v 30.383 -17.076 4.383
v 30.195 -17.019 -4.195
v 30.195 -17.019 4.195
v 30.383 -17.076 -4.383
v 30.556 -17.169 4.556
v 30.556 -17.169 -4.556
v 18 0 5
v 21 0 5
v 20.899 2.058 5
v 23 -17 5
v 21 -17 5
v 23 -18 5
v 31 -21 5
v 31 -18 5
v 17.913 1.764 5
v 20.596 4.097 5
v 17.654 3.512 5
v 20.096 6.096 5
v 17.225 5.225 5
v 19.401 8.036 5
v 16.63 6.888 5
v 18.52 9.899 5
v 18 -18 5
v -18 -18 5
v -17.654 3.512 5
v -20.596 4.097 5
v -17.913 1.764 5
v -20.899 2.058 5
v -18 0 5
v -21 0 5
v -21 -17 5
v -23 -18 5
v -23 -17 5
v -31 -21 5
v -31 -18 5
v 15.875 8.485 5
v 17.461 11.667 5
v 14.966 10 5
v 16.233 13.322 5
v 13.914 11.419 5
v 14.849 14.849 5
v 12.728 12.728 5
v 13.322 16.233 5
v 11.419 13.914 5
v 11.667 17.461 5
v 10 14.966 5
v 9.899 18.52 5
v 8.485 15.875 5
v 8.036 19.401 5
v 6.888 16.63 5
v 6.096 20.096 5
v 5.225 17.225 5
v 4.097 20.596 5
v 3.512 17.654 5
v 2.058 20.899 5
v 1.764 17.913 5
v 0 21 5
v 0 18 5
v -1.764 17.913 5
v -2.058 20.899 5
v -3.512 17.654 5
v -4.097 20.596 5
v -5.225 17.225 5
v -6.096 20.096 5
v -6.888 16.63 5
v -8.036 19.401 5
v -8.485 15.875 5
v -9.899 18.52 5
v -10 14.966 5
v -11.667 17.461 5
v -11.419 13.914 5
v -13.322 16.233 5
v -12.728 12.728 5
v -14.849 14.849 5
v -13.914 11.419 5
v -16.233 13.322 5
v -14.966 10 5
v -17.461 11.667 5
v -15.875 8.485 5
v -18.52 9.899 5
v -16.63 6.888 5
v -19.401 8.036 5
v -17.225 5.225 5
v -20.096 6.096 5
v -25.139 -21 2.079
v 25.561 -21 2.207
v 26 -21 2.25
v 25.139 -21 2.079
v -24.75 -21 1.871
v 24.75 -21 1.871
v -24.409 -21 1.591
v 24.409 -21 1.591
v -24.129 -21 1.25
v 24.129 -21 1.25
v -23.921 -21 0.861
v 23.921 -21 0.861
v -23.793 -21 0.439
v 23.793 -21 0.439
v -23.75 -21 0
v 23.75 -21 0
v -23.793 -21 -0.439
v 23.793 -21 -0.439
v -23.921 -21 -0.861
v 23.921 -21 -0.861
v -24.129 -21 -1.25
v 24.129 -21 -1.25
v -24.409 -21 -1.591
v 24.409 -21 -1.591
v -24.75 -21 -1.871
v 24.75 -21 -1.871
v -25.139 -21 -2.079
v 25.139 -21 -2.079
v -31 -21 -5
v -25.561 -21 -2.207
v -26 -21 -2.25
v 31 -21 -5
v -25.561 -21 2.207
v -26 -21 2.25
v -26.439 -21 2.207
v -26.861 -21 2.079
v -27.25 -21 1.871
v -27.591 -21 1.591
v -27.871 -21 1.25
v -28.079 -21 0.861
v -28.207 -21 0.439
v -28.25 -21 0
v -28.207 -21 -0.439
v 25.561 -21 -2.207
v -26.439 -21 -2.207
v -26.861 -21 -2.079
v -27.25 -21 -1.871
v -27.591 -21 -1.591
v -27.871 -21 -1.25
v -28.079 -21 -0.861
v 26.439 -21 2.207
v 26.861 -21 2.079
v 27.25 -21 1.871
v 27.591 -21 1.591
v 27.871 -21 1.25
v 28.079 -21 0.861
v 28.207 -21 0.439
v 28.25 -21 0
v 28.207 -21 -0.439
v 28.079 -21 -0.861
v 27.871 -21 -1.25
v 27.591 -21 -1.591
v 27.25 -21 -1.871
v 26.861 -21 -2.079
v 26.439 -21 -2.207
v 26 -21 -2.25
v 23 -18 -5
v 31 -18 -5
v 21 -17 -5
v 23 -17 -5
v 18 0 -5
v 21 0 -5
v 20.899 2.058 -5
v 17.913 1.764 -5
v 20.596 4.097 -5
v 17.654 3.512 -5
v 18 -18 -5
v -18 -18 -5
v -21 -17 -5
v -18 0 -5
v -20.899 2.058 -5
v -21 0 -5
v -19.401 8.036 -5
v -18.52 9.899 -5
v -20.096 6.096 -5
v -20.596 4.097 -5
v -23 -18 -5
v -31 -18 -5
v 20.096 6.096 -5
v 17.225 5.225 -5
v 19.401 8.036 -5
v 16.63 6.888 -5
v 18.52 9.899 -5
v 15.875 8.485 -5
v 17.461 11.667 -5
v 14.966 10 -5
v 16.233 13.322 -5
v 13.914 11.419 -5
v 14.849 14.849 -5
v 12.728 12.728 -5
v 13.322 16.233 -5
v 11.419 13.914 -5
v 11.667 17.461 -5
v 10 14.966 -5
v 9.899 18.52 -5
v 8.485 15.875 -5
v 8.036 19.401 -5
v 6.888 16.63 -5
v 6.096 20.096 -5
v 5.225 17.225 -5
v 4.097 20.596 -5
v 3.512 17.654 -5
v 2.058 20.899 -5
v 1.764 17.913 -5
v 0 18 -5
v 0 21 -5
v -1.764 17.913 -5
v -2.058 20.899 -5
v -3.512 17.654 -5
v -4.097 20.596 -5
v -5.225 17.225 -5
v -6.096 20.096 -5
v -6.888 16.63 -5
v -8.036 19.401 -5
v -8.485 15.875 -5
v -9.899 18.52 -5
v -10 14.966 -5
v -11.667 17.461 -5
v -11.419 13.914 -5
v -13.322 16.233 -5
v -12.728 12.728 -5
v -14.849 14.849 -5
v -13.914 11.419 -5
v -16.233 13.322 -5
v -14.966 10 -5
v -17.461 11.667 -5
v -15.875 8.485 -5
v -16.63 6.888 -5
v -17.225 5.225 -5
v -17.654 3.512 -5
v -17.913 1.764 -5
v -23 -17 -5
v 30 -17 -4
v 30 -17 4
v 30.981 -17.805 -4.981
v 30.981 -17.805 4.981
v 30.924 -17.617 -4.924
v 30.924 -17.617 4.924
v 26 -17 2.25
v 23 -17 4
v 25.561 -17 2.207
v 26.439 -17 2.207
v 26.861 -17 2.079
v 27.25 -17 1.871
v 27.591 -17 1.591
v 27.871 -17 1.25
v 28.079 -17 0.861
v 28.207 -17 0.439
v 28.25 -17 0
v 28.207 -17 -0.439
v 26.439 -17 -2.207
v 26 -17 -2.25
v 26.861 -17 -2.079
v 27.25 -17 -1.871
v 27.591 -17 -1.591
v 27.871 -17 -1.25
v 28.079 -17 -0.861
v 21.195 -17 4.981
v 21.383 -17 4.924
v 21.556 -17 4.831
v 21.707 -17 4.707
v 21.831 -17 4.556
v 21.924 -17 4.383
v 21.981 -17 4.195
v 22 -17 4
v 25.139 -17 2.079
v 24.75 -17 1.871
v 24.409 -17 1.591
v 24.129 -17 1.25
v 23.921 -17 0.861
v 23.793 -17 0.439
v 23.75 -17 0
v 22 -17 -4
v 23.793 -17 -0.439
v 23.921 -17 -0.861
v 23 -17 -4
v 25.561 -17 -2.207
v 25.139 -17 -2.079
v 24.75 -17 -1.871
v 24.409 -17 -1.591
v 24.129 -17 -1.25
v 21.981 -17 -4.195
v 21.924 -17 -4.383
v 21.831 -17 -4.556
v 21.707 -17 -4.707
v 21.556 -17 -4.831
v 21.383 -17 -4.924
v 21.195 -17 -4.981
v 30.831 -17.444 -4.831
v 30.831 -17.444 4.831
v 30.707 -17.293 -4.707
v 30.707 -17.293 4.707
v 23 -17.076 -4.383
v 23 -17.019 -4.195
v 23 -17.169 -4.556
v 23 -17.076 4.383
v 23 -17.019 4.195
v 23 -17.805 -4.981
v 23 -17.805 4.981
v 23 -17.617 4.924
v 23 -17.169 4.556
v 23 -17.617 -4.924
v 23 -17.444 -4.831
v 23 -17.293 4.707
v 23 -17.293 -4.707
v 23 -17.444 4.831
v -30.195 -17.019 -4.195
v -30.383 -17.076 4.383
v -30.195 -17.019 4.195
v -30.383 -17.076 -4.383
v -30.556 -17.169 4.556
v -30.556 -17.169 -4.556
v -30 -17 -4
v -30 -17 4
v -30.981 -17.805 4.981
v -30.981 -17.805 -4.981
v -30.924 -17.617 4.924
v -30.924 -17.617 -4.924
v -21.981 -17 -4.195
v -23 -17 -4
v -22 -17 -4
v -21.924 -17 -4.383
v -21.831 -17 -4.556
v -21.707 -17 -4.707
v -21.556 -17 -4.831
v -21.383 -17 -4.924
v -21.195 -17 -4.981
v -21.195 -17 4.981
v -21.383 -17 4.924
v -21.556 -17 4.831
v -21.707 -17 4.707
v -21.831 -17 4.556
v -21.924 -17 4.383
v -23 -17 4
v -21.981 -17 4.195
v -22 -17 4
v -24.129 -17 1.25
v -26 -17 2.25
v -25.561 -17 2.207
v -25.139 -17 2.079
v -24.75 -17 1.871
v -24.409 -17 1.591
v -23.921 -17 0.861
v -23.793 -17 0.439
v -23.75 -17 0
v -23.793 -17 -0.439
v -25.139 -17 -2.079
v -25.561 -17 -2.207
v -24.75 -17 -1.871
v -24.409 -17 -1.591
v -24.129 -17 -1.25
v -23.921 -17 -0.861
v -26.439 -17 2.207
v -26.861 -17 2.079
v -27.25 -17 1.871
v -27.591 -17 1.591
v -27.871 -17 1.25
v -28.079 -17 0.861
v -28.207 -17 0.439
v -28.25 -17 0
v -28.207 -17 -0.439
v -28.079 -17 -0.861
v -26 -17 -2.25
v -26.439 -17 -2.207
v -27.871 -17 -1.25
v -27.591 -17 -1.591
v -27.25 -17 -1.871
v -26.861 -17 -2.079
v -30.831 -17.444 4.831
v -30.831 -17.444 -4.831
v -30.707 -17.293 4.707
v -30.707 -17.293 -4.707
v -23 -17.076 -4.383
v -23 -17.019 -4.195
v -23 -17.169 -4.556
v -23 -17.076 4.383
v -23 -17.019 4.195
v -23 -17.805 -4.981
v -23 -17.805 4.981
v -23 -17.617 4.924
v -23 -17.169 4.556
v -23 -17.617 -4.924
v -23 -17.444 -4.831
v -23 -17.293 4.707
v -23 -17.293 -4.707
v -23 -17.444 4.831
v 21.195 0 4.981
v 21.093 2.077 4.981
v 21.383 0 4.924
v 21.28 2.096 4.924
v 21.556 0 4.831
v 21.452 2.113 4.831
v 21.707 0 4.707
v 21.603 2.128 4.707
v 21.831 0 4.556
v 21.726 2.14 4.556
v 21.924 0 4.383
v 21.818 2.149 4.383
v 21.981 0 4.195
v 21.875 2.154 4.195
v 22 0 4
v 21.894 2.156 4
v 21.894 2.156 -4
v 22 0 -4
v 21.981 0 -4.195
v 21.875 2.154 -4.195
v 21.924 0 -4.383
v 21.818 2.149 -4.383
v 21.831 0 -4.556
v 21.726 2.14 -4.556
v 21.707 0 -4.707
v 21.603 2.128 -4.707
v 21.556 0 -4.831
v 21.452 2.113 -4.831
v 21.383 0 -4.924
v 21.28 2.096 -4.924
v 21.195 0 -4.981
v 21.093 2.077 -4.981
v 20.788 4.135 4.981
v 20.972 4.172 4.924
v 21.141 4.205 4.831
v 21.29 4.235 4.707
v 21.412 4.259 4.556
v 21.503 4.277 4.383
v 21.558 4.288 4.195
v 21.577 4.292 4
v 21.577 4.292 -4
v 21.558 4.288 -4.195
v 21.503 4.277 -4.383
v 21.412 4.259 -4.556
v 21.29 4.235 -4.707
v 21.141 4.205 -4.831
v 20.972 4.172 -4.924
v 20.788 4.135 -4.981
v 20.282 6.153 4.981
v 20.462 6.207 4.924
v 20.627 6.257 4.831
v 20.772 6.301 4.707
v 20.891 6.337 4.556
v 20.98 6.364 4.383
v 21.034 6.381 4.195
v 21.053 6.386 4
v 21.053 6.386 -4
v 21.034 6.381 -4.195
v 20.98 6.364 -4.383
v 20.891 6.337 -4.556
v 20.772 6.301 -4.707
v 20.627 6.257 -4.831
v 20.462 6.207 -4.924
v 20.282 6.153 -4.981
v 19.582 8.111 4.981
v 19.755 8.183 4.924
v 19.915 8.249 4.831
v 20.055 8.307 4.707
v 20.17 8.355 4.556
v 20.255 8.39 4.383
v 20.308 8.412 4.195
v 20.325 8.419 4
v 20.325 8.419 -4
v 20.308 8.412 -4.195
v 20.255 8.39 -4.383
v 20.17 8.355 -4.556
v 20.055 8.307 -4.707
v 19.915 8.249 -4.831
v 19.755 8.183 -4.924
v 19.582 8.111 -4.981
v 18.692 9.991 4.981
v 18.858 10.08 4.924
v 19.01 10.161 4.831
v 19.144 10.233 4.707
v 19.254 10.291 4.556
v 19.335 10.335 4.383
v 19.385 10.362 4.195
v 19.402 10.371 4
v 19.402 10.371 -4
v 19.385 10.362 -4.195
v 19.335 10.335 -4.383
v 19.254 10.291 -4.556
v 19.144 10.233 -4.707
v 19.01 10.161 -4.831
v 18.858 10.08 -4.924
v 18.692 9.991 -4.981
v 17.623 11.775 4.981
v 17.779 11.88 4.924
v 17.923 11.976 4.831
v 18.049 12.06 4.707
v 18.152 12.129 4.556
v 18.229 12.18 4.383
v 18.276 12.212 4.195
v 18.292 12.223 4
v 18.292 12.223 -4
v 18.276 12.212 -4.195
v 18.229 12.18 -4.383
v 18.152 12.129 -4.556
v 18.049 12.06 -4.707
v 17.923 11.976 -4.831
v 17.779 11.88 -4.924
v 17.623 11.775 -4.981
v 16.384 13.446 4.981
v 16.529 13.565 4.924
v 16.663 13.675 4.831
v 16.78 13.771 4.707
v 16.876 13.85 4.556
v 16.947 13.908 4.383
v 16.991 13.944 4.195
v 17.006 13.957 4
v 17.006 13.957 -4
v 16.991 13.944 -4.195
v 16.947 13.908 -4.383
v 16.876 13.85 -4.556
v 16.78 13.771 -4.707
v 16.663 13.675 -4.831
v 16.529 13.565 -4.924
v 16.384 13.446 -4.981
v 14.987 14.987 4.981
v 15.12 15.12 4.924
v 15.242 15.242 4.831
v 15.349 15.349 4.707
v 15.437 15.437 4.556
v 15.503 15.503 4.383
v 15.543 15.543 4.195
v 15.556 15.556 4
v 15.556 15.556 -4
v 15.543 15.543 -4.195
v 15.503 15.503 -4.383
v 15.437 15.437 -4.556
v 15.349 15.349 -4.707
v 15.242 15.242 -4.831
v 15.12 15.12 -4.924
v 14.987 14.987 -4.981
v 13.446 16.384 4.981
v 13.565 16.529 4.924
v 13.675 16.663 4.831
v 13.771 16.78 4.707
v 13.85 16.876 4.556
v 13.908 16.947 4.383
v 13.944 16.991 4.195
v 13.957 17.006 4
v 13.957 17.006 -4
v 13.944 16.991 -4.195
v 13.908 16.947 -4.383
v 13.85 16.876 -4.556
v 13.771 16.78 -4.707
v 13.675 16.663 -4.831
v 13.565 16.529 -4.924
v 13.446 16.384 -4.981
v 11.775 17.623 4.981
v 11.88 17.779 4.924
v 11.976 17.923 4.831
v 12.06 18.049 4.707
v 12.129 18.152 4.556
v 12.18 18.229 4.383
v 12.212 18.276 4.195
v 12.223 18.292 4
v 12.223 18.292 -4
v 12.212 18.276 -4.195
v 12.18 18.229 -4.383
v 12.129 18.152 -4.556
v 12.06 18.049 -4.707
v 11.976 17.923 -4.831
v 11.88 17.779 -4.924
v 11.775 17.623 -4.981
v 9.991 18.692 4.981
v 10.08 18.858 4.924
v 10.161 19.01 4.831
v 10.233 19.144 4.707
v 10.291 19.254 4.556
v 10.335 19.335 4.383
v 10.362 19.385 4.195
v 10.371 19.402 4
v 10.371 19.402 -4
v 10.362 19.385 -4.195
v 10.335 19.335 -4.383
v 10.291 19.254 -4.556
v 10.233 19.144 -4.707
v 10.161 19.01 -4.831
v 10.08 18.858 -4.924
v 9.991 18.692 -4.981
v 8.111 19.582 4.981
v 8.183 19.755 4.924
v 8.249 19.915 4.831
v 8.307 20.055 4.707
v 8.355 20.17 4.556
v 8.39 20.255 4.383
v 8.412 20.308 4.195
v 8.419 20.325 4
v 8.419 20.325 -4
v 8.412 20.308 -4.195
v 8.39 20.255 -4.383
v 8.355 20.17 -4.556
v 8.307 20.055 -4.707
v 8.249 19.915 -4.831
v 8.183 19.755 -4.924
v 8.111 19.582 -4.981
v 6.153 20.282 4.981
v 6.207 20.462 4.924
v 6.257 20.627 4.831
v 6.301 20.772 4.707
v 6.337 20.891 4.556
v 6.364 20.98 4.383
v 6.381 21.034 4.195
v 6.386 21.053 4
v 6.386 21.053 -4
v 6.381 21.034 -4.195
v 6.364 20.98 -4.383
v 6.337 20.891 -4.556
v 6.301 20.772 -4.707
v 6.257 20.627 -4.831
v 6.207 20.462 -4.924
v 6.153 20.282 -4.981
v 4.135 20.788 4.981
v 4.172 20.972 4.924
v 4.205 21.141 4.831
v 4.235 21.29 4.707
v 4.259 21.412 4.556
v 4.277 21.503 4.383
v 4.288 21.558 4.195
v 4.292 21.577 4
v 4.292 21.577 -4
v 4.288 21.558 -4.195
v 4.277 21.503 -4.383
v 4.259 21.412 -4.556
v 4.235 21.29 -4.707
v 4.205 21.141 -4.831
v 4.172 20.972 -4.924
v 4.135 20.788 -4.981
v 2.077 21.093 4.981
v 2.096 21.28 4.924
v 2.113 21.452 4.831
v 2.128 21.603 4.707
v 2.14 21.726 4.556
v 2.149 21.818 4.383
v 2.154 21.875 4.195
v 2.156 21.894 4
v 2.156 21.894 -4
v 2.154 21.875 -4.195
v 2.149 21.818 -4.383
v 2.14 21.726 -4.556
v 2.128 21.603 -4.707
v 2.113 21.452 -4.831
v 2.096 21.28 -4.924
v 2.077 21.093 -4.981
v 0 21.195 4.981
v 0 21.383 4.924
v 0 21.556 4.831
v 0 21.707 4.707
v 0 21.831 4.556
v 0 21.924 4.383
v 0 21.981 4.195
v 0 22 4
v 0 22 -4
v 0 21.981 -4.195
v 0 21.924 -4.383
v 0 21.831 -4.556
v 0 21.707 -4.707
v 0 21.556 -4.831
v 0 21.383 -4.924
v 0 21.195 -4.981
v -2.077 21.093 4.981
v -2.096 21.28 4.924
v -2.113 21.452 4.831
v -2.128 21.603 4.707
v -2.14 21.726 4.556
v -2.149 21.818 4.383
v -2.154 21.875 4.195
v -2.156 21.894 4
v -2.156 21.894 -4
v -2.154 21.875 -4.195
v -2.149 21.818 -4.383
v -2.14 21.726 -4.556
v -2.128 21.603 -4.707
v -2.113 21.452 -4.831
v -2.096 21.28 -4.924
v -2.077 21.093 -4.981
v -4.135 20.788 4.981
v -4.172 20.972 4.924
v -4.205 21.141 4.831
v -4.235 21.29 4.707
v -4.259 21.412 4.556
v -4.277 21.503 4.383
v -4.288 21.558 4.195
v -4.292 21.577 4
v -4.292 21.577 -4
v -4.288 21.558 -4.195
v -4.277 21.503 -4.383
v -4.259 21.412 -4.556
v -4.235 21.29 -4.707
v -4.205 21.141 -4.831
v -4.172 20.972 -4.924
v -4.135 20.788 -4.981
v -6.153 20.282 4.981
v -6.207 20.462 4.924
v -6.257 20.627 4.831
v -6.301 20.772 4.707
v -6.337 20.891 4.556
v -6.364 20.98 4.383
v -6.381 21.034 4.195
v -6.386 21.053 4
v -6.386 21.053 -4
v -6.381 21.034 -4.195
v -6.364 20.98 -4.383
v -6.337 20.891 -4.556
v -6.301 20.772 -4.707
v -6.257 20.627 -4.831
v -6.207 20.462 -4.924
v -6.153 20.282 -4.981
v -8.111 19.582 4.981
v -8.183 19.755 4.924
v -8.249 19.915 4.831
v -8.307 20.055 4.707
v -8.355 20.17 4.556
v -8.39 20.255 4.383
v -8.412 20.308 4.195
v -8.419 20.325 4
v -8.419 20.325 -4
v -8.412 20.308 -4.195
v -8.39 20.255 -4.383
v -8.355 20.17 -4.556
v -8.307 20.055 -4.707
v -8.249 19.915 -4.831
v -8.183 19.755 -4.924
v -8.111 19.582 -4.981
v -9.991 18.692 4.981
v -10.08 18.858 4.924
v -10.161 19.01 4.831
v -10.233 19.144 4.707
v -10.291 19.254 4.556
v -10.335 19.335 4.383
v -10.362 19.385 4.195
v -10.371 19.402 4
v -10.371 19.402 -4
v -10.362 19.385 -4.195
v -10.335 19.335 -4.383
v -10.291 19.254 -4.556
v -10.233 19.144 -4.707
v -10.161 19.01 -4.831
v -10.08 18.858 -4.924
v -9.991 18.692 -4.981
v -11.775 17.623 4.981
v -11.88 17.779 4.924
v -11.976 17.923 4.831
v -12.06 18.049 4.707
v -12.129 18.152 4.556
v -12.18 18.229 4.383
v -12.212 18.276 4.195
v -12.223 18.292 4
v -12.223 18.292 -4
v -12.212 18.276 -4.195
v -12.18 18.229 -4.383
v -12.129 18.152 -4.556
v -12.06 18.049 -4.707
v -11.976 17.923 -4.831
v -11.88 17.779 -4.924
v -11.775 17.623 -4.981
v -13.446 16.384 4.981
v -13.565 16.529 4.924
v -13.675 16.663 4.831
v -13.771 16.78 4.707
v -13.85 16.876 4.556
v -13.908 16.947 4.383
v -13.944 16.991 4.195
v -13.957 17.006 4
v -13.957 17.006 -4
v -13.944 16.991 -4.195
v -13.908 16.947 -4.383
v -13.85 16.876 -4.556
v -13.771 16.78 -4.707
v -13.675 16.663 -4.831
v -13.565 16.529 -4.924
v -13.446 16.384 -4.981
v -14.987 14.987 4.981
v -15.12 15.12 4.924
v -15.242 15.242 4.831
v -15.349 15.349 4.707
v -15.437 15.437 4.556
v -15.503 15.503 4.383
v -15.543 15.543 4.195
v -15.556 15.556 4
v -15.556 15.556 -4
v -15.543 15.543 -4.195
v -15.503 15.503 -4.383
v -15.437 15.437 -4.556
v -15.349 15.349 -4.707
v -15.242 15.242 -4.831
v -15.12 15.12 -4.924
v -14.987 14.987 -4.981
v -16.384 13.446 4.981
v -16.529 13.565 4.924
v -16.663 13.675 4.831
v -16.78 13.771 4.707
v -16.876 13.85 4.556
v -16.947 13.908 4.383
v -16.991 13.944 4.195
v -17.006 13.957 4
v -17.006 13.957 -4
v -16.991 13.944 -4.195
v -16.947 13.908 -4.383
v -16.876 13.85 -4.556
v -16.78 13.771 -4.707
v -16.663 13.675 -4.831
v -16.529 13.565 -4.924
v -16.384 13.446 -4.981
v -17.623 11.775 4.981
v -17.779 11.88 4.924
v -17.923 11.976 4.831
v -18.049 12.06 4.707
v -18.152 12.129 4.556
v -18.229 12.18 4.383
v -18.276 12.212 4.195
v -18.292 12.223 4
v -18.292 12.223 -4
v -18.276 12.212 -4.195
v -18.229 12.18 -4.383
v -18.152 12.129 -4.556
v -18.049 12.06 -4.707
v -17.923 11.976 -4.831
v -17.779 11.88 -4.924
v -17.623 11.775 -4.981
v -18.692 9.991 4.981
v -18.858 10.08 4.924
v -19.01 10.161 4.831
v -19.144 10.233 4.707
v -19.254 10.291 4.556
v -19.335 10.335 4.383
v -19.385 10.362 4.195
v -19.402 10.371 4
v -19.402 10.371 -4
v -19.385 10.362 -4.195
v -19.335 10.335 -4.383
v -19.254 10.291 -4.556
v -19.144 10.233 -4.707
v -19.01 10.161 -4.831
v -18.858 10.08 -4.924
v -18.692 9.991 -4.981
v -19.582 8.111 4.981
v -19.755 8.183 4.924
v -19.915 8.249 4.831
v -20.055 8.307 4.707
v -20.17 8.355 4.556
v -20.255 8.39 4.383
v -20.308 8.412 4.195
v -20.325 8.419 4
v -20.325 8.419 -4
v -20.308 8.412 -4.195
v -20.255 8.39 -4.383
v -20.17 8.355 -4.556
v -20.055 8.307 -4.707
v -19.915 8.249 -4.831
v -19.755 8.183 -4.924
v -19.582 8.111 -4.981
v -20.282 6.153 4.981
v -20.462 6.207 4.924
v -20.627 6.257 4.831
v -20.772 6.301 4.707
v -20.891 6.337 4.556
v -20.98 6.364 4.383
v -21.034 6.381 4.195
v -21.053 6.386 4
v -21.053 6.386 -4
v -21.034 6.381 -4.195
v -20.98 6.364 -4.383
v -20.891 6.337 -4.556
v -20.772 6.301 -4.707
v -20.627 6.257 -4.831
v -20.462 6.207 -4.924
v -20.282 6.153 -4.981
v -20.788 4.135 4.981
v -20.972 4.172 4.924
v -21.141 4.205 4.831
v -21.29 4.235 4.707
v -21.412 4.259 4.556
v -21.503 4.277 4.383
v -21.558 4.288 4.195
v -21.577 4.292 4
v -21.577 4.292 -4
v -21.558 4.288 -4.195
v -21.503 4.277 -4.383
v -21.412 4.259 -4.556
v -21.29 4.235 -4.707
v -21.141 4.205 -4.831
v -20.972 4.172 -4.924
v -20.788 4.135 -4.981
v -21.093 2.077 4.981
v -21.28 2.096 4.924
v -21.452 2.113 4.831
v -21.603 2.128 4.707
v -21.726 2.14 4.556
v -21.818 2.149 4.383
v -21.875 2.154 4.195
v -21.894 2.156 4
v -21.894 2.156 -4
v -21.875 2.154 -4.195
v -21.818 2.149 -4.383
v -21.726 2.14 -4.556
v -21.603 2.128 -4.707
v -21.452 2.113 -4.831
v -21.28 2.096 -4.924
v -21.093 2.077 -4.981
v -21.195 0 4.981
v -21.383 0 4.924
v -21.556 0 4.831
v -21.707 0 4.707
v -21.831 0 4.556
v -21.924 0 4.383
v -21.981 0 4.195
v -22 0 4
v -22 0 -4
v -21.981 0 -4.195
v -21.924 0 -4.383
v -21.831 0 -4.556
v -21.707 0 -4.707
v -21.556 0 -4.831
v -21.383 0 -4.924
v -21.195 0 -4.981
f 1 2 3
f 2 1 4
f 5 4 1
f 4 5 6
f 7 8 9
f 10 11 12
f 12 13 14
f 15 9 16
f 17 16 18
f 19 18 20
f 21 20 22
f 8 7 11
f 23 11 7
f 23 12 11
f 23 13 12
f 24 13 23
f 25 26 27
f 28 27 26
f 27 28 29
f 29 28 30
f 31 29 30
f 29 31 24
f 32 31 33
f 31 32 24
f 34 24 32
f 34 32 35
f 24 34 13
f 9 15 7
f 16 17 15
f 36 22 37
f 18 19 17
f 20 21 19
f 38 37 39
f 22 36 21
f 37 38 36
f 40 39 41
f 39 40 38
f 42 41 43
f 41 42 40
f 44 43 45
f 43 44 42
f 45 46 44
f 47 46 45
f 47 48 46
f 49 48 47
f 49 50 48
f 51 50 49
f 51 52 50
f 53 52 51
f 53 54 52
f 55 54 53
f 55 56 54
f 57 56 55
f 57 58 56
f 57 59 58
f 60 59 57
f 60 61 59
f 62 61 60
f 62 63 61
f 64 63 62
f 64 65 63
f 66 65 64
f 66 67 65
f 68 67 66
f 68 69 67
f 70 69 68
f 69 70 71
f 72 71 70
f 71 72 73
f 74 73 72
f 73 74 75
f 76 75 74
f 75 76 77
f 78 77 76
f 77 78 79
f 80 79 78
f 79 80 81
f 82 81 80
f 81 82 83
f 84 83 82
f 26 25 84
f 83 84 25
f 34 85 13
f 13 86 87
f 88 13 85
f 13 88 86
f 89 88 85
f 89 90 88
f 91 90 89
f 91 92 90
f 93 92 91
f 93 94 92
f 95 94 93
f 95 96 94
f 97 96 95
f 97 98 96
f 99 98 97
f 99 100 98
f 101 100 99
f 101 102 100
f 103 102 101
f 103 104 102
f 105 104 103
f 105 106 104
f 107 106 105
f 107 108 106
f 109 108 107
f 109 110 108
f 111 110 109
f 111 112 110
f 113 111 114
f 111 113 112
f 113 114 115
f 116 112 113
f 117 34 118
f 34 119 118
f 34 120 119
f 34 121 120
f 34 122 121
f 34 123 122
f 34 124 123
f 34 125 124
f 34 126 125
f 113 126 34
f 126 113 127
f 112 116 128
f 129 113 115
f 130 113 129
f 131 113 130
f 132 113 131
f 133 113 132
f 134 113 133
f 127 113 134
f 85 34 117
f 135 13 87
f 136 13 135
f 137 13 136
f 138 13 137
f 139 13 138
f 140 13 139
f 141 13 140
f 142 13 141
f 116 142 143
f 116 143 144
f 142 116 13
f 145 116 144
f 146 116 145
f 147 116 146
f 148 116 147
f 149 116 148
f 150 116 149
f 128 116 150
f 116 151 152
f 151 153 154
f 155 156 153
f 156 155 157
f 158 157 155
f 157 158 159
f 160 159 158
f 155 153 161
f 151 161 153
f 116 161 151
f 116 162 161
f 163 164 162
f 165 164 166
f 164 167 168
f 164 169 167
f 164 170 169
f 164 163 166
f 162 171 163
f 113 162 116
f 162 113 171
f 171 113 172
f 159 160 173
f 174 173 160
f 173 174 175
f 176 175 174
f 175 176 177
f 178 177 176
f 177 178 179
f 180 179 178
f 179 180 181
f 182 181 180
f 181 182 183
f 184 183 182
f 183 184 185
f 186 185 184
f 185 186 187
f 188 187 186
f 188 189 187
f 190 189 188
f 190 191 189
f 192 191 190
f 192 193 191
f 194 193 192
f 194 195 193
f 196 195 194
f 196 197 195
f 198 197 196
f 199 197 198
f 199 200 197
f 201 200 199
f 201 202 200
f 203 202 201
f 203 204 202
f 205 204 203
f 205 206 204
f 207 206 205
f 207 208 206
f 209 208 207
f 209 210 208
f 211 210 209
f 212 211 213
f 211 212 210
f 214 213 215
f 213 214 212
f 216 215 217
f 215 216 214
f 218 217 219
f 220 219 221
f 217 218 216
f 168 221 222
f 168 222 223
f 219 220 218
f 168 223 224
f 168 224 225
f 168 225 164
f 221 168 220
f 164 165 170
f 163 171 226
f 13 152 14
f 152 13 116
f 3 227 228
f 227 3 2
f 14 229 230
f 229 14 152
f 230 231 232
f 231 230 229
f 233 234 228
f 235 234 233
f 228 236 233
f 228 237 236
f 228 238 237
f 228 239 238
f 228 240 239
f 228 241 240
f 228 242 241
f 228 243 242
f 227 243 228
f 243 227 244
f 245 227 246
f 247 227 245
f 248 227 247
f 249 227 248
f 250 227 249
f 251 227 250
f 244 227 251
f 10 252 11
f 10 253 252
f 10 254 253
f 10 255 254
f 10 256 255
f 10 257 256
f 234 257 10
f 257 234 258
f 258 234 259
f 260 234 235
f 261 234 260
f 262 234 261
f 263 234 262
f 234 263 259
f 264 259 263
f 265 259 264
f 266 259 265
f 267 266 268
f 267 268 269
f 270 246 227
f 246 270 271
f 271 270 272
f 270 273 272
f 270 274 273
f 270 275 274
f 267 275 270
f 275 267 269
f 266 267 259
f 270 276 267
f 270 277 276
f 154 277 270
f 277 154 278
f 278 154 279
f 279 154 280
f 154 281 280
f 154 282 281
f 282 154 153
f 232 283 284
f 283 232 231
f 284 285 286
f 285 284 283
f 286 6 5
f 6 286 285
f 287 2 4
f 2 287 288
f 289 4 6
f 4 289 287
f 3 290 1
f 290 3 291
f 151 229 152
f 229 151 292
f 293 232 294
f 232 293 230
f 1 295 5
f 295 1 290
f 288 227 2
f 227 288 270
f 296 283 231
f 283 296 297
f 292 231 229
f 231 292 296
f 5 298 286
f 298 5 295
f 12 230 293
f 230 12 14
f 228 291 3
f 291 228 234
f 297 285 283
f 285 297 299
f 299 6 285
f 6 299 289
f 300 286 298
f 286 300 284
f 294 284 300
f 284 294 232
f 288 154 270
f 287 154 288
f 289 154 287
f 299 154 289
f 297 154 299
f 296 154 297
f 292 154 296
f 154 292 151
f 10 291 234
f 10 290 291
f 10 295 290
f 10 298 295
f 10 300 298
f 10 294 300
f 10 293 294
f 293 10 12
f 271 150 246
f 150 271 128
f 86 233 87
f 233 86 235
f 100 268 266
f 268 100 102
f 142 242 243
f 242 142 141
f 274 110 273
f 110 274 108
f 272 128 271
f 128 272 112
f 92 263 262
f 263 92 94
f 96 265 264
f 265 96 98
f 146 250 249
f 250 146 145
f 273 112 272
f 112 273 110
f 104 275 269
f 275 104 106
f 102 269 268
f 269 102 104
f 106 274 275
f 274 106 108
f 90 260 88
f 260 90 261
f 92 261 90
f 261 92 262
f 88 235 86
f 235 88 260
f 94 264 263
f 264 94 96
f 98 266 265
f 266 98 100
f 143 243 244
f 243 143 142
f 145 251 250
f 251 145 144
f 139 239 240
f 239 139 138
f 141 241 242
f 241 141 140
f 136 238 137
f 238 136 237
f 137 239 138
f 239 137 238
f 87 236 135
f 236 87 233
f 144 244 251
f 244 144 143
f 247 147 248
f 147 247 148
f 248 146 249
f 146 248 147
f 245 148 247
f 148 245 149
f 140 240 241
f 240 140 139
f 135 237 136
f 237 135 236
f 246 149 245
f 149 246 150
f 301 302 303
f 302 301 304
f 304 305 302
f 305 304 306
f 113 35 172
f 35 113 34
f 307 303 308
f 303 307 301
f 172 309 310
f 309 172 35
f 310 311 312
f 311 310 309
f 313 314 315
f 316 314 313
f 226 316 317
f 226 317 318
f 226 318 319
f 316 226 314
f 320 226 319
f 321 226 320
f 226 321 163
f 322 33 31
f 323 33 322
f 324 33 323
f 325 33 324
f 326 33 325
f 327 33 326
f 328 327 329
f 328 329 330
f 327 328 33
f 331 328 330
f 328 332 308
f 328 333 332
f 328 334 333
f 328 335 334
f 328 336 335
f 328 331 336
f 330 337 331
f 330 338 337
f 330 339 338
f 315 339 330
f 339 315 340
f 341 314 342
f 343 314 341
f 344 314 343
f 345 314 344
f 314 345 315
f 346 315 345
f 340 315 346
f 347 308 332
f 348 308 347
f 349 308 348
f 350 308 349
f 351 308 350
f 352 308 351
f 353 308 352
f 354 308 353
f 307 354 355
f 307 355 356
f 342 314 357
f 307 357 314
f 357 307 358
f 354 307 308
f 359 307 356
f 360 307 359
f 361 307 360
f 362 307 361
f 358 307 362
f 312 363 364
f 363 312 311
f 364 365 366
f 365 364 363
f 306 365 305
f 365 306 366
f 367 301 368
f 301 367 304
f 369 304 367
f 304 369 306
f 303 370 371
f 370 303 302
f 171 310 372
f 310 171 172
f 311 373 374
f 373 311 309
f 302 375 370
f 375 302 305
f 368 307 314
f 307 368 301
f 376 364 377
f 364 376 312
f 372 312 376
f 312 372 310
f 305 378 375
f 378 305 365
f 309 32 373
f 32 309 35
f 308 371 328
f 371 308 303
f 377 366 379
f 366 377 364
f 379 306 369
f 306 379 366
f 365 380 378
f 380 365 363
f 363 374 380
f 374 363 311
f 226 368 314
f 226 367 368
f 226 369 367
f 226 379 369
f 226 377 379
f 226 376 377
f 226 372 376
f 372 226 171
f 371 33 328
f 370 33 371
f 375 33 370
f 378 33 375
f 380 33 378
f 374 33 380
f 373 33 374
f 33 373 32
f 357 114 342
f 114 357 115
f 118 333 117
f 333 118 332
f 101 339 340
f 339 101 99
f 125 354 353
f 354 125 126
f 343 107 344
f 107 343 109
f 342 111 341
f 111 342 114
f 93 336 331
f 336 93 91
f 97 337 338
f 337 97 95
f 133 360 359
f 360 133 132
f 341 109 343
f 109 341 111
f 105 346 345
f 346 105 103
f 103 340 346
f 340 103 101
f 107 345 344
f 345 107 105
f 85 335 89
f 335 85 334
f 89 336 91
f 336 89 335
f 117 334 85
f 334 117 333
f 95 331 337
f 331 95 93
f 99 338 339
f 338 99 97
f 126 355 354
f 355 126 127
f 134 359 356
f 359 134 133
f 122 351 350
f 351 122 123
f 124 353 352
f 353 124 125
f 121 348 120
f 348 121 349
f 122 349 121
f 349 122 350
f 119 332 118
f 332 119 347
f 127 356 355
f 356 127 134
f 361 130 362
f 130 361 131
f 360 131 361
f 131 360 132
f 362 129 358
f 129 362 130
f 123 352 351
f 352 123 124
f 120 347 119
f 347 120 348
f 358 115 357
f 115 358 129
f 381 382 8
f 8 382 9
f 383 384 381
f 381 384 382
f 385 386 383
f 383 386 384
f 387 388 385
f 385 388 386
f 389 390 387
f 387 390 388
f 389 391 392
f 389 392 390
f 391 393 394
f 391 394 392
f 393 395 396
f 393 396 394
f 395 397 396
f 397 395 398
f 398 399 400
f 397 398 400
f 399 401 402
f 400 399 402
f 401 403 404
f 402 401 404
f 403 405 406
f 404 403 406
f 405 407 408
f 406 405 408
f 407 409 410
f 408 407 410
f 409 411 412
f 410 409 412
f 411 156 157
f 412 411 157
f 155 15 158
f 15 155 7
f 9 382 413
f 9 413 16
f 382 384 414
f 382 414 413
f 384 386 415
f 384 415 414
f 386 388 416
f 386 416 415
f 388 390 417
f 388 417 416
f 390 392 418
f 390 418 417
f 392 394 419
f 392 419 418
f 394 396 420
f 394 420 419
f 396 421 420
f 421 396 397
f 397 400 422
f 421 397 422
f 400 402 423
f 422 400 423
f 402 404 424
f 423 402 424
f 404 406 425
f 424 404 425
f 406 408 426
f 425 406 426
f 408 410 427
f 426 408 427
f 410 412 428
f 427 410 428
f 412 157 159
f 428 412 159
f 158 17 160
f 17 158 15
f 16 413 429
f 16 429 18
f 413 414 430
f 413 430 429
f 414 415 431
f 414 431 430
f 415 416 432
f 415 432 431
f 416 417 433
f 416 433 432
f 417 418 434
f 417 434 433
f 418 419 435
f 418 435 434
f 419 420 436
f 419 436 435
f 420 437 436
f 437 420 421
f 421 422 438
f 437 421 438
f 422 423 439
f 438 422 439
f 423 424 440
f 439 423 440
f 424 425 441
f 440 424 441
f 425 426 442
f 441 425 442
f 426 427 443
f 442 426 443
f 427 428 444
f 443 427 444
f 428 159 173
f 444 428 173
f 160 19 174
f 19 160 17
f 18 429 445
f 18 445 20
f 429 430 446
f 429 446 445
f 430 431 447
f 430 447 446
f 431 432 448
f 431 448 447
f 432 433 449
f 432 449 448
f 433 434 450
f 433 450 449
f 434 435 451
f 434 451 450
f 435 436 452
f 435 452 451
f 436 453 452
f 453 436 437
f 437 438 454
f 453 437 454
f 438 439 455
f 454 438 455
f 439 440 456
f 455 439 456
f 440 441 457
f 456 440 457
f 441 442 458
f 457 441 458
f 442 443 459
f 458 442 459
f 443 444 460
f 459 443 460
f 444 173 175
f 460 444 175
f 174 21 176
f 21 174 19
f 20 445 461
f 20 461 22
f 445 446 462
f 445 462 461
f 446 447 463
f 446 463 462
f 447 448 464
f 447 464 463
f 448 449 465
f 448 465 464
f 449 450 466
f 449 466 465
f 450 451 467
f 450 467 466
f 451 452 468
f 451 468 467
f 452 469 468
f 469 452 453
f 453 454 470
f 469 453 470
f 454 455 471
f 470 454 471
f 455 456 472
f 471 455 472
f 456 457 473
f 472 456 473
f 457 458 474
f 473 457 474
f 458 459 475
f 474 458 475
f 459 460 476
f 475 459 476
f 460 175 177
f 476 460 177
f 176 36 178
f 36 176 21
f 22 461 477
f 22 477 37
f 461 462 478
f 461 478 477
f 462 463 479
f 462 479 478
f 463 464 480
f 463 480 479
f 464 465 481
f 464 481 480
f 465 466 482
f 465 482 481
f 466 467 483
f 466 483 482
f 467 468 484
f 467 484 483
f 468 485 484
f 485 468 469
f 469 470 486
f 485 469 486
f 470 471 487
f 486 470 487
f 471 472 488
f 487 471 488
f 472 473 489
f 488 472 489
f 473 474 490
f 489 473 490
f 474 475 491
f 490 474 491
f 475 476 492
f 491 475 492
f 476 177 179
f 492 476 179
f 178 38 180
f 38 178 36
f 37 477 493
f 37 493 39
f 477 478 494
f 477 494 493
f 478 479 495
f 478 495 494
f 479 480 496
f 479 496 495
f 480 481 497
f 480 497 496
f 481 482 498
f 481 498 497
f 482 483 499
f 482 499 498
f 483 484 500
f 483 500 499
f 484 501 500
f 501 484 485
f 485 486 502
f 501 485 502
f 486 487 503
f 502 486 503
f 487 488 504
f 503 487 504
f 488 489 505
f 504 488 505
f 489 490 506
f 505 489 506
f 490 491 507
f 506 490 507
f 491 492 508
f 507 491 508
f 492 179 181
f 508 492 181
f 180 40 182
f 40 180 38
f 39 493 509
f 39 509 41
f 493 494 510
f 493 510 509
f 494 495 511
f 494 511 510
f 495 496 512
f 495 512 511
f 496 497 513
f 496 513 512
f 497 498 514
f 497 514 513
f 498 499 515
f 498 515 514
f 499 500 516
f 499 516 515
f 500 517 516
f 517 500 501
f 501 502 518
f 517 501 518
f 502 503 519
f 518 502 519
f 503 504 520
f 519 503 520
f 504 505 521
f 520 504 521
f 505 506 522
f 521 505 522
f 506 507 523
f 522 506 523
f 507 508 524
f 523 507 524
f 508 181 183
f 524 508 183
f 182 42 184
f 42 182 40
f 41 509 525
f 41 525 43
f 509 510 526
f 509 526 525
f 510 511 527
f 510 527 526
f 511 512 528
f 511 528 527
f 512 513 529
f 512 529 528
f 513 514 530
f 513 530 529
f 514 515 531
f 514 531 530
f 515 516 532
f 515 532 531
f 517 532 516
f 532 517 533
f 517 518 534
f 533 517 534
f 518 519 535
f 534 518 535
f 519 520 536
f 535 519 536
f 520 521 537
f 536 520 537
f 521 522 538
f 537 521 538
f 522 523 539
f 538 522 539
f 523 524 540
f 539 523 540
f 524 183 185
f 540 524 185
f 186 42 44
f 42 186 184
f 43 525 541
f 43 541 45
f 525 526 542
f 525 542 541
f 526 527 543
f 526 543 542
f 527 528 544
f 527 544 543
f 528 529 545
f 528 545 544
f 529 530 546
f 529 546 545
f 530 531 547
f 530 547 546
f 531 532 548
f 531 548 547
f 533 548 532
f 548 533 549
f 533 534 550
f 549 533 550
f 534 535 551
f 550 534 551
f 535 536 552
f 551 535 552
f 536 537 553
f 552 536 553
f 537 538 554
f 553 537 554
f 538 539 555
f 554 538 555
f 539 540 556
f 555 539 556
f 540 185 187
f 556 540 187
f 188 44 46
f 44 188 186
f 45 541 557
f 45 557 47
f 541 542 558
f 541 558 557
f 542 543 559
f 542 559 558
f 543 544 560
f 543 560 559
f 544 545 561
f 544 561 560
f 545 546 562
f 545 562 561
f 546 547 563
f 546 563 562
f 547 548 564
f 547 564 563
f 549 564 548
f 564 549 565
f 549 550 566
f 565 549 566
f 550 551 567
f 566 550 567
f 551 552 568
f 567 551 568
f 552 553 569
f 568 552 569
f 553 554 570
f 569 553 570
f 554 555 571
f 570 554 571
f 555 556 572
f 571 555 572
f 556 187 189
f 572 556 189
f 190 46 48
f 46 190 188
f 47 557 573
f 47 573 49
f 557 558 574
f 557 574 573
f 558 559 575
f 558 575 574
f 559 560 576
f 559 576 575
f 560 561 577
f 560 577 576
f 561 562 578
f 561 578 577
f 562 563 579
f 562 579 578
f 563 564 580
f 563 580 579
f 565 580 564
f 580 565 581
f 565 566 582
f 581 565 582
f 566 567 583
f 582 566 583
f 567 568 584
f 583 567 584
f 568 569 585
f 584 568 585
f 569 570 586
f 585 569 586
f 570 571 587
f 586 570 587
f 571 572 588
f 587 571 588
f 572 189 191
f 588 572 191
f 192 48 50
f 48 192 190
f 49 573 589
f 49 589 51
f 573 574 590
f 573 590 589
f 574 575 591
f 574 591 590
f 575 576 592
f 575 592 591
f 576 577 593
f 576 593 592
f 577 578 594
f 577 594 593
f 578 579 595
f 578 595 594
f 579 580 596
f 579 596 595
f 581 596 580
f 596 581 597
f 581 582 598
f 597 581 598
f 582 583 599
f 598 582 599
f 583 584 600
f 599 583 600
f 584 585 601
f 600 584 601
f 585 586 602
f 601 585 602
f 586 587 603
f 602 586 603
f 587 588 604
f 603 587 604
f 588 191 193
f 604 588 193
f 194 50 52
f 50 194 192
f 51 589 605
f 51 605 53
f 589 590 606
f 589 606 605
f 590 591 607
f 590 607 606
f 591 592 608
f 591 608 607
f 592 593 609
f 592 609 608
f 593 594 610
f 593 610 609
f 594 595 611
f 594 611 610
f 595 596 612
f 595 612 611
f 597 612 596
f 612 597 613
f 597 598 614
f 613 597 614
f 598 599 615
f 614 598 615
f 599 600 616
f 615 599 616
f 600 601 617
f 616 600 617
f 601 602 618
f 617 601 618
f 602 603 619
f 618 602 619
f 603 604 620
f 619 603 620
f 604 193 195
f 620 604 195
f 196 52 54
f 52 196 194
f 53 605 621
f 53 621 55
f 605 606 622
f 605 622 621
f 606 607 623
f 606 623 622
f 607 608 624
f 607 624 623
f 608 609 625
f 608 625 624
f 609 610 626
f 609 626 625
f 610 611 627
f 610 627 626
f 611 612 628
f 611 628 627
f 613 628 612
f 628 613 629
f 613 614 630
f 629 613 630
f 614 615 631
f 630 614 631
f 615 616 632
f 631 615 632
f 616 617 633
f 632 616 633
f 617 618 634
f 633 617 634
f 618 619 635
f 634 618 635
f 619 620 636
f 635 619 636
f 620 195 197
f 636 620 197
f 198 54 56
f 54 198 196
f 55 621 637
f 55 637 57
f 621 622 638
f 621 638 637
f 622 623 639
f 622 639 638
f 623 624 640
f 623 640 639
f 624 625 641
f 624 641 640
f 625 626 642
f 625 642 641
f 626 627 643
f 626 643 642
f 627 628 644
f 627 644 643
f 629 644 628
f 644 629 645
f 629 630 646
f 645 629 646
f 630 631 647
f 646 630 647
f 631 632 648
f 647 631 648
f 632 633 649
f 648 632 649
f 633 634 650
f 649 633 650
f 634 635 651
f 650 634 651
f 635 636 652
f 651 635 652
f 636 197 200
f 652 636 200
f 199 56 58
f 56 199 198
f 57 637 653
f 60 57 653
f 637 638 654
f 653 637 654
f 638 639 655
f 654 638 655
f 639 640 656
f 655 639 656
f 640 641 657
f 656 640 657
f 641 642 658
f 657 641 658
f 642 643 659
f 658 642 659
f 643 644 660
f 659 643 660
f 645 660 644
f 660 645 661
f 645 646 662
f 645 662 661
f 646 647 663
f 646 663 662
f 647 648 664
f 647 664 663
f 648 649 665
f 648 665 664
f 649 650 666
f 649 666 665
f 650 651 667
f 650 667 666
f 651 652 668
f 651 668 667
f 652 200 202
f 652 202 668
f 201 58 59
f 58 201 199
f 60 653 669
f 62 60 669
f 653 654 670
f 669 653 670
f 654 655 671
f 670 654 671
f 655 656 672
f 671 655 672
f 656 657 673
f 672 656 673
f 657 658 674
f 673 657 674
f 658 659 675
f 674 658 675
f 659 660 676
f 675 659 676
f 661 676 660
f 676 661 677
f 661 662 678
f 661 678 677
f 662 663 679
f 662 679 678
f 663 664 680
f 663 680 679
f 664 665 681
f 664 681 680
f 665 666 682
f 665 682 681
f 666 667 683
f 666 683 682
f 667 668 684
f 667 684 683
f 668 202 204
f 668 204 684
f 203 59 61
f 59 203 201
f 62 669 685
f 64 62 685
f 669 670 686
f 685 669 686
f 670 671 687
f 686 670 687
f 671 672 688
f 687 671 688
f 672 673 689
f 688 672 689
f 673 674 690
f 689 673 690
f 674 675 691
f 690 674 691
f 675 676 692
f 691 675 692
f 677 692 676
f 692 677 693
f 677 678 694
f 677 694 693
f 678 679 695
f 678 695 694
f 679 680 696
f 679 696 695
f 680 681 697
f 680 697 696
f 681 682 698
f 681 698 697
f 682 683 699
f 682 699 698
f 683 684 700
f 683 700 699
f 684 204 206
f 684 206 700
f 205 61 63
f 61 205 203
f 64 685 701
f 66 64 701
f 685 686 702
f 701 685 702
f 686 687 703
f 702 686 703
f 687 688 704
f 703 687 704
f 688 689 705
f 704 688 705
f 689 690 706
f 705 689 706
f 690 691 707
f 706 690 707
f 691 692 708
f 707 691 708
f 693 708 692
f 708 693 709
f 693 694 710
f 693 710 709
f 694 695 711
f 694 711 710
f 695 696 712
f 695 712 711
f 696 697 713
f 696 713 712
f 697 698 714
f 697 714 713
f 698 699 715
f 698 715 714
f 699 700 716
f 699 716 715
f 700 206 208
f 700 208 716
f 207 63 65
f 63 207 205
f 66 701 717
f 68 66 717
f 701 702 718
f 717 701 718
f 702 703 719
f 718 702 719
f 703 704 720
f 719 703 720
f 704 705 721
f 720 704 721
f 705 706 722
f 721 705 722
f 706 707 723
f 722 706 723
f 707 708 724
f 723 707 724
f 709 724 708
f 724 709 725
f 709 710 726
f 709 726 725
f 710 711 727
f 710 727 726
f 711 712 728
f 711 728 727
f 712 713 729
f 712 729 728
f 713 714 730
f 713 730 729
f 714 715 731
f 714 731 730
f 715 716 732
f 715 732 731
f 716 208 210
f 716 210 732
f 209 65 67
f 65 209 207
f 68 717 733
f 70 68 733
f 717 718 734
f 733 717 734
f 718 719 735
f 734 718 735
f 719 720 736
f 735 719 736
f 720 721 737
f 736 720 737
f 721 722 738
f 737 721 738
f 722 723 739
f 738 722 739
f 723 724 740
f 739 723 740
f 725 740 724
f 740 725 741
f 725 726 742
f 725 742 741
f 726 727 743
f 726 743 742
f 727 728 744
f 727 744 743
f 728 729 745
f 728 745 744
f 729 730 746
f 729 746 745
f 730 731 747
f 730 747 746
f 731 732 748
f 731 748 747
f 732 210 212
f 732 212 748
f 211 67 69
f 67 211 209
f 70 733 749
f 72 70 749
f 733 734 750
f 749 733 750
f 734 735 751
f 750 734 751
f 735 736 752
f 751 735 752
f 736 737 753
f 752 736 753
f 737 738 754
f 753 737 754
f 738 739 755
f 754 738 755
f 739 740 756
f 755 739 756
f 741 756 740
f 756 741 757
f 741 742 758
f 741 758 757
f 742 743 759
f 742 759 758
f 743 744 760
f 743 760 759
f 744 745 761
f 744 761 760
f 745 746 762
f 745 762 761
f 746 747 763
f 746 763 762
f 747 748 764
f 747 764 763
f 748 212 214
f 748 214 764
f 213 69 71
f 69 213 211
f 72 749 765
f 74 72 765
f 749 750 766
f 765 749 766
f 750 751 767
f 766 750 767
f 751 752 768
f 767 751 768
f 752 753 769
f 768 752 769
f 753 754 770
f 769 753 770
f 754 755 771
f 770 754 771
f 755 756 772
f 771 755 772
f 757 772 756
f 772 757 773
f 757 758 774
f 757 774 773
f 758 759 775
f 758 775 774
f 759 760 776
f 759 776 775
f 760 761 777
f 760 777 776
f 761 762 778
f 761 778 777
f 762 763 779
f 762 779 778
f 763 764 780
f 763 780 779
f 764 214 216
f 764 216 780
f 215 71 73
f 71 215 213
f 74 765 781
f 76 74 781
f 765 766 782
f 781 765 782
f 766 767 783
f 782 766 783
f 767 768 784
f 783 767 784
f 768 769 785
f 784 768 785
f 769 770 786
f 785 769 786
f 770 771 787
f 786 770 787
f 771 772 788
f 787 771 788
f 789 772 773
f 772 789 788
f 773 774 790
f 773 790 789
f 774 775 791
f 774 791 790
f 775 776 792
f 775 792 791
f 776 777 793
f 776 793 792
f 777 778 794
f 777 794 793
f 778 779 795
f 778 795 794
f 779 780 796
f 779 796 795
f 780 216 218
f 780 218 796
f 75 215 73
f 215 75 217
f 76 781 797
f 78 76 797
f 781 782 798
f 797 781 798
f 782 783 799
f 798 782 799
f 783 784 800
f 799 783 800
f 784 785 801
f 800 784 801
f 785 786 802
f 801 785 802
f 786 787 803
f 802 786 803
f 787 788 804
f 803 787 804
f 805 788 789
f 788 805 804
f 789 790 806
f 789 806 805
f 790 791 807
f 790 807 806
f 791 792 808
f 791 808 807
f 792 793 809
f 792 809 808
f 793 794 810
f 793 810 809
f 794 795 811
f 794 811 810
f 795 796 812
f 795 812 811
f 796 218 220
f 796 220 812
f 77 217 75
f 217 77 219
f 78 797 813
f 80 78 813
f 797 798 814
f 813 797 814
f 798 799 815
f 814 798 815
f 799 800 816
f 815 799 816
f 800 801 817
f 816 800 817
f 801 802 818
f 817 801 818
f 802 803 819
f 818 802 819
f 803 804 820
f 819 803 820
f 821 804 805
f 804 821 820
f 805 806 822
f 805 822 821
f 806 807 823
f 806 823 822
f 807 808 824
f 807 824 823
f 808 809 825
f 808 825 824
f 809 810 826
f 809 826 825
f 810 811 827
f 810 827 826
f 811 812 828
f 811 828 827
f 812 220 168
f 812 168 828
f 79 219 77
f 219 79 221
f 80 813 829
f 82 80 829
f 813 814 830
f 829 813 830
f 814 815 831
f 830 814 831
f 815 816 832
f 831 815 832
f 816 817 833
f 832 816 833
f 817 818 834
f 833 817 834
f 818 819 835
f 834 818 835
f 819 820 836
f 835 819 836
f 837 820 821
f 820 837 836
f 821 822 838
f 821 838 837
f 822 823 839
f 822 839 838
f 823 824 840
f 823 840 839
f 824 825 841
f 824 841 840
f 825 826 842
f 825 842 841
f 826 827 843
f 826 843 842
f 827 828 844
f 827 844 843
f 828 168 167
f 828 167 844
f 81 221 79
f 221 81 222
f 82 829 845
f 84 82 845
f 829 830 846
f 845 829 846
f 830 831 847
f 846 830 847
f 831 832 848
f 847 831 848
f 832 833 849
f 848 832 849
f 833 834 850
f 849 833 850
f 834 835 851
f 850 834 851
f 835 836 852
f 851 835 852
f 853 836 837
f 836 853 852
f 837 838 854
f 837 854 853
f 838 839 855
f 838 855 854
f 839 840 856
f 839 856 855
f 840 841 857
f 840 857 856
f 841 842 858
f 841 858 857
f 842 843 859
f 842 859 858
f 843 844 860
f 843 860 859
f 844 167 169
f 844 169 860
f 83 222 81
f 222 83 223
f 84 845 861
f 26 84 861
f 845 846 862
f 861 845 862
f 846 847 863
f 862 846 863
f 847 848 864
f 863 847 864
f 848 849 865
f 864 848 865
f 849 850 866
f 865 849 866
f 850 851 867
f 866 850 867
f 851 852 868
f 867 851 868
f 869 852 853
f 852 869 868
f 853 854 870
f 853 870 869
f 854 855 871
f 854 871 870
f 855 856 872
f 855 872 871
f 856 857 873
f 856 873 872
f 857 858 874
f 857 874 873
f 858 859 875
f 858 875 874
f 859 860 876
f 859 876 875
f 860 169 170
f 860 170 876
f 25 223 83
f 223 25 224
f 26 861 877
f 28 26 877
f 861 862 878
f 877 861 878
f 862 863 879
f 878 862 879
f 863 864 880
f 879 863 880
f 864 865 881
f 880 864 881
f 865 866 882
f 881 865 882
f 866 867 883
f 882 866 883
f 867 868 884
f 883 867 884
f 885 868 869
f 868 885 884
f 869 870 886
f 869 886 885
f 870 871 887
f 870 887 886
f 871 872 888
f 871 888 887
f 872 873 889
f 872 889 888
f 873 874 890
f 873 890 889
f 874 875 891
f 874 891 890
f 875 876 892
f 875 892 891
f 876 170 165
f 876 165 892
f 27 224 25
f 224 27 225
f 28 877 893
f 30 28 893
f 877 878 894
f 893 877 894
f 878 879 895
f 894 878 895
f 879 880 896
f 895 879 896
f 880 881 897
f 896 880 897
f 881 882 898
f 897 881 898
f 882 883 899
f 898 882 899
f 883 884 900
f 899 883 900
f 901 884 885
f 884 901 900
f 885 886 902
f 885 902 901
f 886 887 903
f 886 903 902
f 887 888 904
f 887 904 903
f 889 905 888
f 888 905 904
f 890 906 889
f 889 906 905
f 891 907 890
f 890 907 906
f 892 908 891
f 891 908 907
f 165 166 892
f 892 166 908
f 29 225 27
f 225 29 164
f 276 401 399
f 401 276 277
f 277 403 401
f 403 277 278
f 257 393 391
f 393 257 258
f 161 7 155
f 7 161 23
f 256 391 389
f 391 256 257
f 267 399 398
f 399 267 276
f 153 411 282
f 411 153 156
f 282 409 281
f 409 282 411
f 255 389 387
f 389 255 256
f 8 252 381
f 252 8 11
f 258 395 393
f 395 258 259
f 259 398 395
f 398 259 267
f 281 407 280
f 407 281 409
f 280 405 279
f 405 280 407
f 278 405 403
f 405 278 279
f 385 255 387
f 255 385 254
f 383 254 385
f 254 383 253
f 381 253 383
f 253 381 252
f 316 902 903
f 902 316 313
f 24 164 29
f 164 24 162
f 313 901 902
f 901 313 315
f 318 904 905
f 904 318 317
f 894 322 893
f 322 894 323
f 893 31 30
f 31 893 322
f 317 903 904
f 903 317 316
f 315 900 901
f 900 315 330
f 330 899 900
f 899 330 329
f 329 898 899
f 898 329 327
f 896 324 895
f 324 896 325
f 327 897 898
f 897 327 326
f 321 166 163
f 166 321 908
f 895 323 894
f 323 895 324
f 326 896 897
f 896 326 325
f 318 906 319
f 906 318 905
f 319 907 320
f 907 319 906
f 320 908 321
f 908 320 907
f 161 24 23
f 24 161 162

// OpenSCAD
// file: ../shared/Tooth Profile.scad
//Simple Trapezoid Tooth Profile - used by Belt - don't print
use <Chamfer-Fillet-Machine.scad>
pressure_angle = 14.5;//degrees
tooth_pitch = 16;//mm
half_tooth_pitch = tooth_pitch/2;
root_fillet_radius = 2;//mm
tooth_height = 5;//mm

function tooth_points(
    pressure_angle=14.5,
    tooth_pitch=16,
    root_fillet_radius=2,
    tooth_height=12,
    descent=0.1) = 
    let(
        //half pitch
        half_tooth_pitch = tooth_pitch/2,
        
        //find the tangent contact points
        x_fact = cos(pressure_angle),
        y_fact = sin(pressure_angle),
        
        //find the x and y distance from circle centre
        dx_radial = x_fact * root_fillet_radius,
        dy_radial = y_fact * root_fillet_radius,

        //find the tangent coordinates
        x_tang = -half_tooth_pitch + dx_radial,
        y_tang = root_fillet_radius - dy_radial,

        //find gradient of the radial
        radial_gradient = -dy_radial / dx_radial,

        //find gradient of tangent
        tangent_gradient = -1 / radial_gradient,

        //calculate intersection point on baseline (y = 0)
        x_base_disp = y_tang / tangent_gradient,
        x_base = x_tang - x_base_disp,

        //calculate intersection point on top (y = height)
        y_top_disp = (tooth_height - y_tang),
        x_top_disp = y_top_disp / tangent_gradient,
        x_top = x_tang + x_top_disp,
        pts = [
            //[0, -descent, 0],
            [-(half_tooth_pitch + root_fillet_radius), -descent, 0],
            [-(half_tooth_pitch + root_fillet_radius), 0, 0],
            [x_base, 0, root_fillet_radius],
            [x_top, tooth_height, 1],
            [-x_top, tooth_height, 1],
            [-x_base, 0, root_fillet_radius],
            [half_tooth_pitch + root_fillet_radius, 0, 0],
            [half_tooth_pitch + root_fillet_radius, -descent, 0],
            [-(half_tooth_pitch + root_fillet_radius), -descent, 0]
            //[0, -descent, 0]
        ]
    ) pts;

module tooth_pitch_debug(
    pressure_angle=14.5,
    tooth_pitch=16,
    root_fillet_radius=2,
    tooth_height=12) {

    //draw 2 circles to represent the root fillets, and space them apart by the pitch
    translate([-tooth_pitch/2, root_fillet_radius]) circle(root_fillet_radius, $fn=32);
    translate([tooth_pitch/2, root_fillet_radius]) circle(root_fillet_radius, $fn=32);

    //simulate a zero degree pressure angle
    %translate([0, tooth_height/2]) square([tooth_pitch - (2 * root_fillet_radius), tooth_height], center=true);

    //find the tangent contact points
    x_fact = cos(pressure_angle);
    y_fact = sin(pressure_angle);
    echo("x_fact: ", x_fact, "y_fact: ", y_fact);
    //find the x and y distance from circle centre
    dx_radial = x_fact * root_fillet_radius;
    dy_radial = y_fact * root_fillet_radius;
    echo("dx_radial: ", dx_radial, "dy_radial: ", dy_radial);

    x_tang = -half_tooth_pitch + dx_radial;
    y_tang = root_fillet_radius - dy_radial;
    echo("x_tang: ", x_tang, "y_tang: ", y_tang);

    //annotate tangent contact points
    color("black", 0.25) translate([x_tang, y_tang]) circle(0.5, $fn=32);
    color("black", 0.25) translate([-x_tang, y_tang]) circle(0.5, $fn=32);

    //annotate radial
    color("blue") translate([-half_tooth_pitch, root_fillet_radius]) vector_arrow([dx_radial, -dy_radial]);

    //find gradient of the radial
    radial_gradient = -dy_radial / dx_radial;
    echo("radial_gradient: ", radial_gradient);

    //find gradient of tangent
    tangent_gradient = -1 / radial_gradient;
    echo("tangent_gradient: ", tangent_gradient);

    //calculate intersection point on baseline (y = 0)
    x_base_disp = y_tang / tangent_gradient;
    x_base = x_tang - x_base_disp;
    echo("x_base_disp: ", x_base_disp, "x_base: ", x_base);

    //annotate triangle
    color("yellow", 0.25) polygon([
        [x_tang, y_tang],
        [x_tang, 0],
        [x_base, 0]
    ]);

    //annotate base contact points
    color("black", 0.25) translate([x_base, 0]) circle(0.5, $fn=32);

    //create tangent line vector
    Vtang = [dy_radial, dx_radial];
    Vtangex = extend_vect(Vtang, 20);
    echo("Vtang: ", Vtang);

    //annotate tangents
    color("red") translate([x_base, 0]) vector_line(Vtangex);

    //label pressure angle
    color("black") translate([-half_tooth_pitch, tooth_height + 1]) text(str("Pressure Angle: ", pressure_angle, " degrees"), size=0.5);

    //calculate intersection point on top (y = height)
    y_top_disp = (tooth_height - y_tang);
    x_top_disp = y_top_disp / tangent_gradient;
    echo("y_top_disp: ", y_top_disp, "x_top_disp: ", x_top_disp);
    x_top = x_tang + x_top_disp;
    echo("x_top: ", x_top);

    //annotate triangle
    color("yellow", 0.35) polygon([
        [x_tang, y_tang],
        [x_tang, tooth_height],
        [x_top, tooth_height]
    ]);

    //annotate top contact points
    color("black", 0.25) translate([x_top, tooth_height]) circle(0.5, $fn=32);
}
*tooth_pitch_debug();
// file: ../shared/Constants.scad
/*
    Constants.scad contains all the global constants
*/
use <Tooth Profile.scad>

//idler hub
idle_bearing_od = 16;//mm
idle_bearing_fit_dia = idle_bearing_od * 1.03;//push-in fit for bearing
idle_bearing_thickness = 5.25;//push-in fit
hub_thickness = 15;
hub_dia = 24;
idle_shaft_hole_dia = 6.5;//clearance for 6mm shaft
scraper_fix_hole_dia = 4.5;//mm
idler_width = 25;//mm
idler_dia = 50;//mm
idler_spacing = 0.5;//mm
radial_spacing = 5;//mm
tube_insertion = 25;//mm
tube_outer_dim = 10;//10mm square tube
tube_dim = sqrt(tube_outer_dim^2 + tube_outer_dim^2) * 1.04;
echo("tube_outer_dim:", tube_outer_dim, "tube_dim:", tube_dim);

//idler wheel
idle_wheel_thickness = 25;
idle_wheel_dia = 50;
idle_shaft_dia = 6.25;//mm
tooth_space_thickness = 11;//mm
tooth_space_dia = 35;//mm
runner_thickness = (idle_wheel_thickness - tooth_space_thickness)/2;
edge_radius = 1;
dee_shaft_offset = 1;
spigot_scale_factor = 1.0;//grow spigot hole if necessary for a tight fit

//idler axle
idle_rod_dia = 5.92;//mm tight fit for bearing
idle_rod_length = 25 + (2 * 0.5) + (2 * 15) + (2 * 2);//mm idler width + 2 spacers + 2 hubs + 2 washers
echo("idle_rod_length", idle_rod_length);
idle_rod_cap_length = 2;//mm
idle_rod_clip_width = 1;//mm
idle_rod_clip_dia = 4.5;//mm

//knurled wheel and locknut
//knob parameters
KNOB_DIAM=25;
//screw parameters
SCREWHEAD_FACETOFACE=0;
SCREWHEAD_DEPTH=12;
THRU_HOLE_DIAM=9.5;
//grippy cutouts parameters
NUM_GRIP_CUTOUTS=20;
GRIP_CUTOUT_DIAM=4;
CUTOUT_RADIUS_ADJ=1;
KNURLED_WHEEL_HEIGHT=6;
KNURLED_WHEEL_NUM_TURNS = 3.5;
LOCKNUT_HEIGHT=3;
LOCKNUT_NUM_TURNS = 1.375;

//motor plate
gearbox_collar_hole_dia = 22.2;//mm
motor_plate_thickness = 4;//mm
motor_plate_corner_dia = 15;//mm
plan_motor_dia = 36.3;//mm
plan_shoulder_base_thickness = 3;// mm
plan_shoulder_thickness = 5;// mm
plan_shoulder_height = 20;// mm

//planetary motor bracket
pmb_motor_dia = 36;//mm 35.5 plus clearance
pmb_base_thickness = 3;//mm
pmb_foot_thickness = 5;//mm
pmb_width = 10;//mm
pmb_thickness = 4;//mm
pmb_chamfer_radius = 1;//mm
pmb_fix_hole_dia = 4.5;//mm

//bearing backplate
drive_bearing_bush_dia = 24;//mm
drive_bearing_od = 16;//mm
drive_bearing_fit_dia = drive_bearing_od * 1.02;//push fit for bearing
drive_bearing_recess = 6;//mm 

//drive sprocket
sprocket_spacing = 0.5;//mm
tooth_height = 5;//mm 4 + 1 to sink into cylinder

//tube clamp
clamp_width = 10;//mm
clamp_effect = 0.75;//mm
clamp_int_dia = 0.5;//mm
clamp_ext_dia = 2.5;//mm
clamp_fix_hole_dia = 4.8;//mm
clamp_washer_dia = 13;// for 12.5mm washer
clamp_washer_thickness = 1;//mm

//drive spindle
plan_motor_drive_shaft_dia = 8;//mm
spindle_outer_dia = 20;//mm fn=6 for hex
spindle_length = 25;//mm
spindle_shoulder_dia = 30;//mm
spindle_shoulder_width = 10;//mm
drive_sprocket_shaft_hole_dia = 8.32;//for 8mm shaft
spindle_dee_shaft_offset = 1;//mm
spindle_dee_shaft_dia = plan_motor_drive_shaft_dia * 1.0175;//mm interference fit
spindle_drive_shaft_length = 25;//mm shaft is 17.5 only 14mm of which is D'eed
spindle_bearing_shaft_dia = 9.3;//space for M8 thread
spindle_thread_num_turns = 9;
spindle_thread_x_factor = 1.04;
spindle_thread_y_factor = 1.04;
spindle_thread_z_factor = 1.0;

//drive sprocket shaft
drive_sprocket_shaft_num_turns = 14;
bearing_section_length = 10;//mm
back_bearing_stub_dia = 7.95;//mm for 8mm hole in bearing

//drive sprocket cog
tth_num_teeth = 9;
tth_pitch_angle = 360 / tth_num_teeth;
drive_sprocket_dia = 50;
tooth_depression = 1.1;//to smooth base fillets
sprock_tooth_x_scale = 0.8;//put space between teeth
sprock_tooth_y_scale = 1.05;//
sprock_thickness = 11;//mm for a 7|11|7 sandwich
tth_sprock_press_angle = 5;
tth_tooth_pitch = 8;
tth_root_fillet_radius = 1;
tth_tooth_height = 5;
sprock_tooth_profile_pts = tooth_points(tth_sprock_press_angle, tth_tooth_pitch, tth_root_fillet_radius, tth_tooth_height);

//drive plain cog
plain_cog_dia = 50;
plain_cog_thickness = 7;
plain_cog_rim_thickness = 3;//mm

//just for assembly
wheelbase = 200;//mm horizontal distance between idle wheel centres
track_triangle_height = 60;//mm vertical distance between drive motor and tube centres
// main file
include <../shared/Constants.scad>

module profile() {
    hull() {
        translate([pmb_thickness - pmb_chamfer_radius, pmb_width/2 - (1 * pmb_chamfer_radius), 0]) circle(r=pmb_chamfer_radius, $fn=32);
        translate([pmb_thickness - pmb_chamfer_radius, -pmb_width/2 + (1 * pmb_chamfer_radius), 0]) circle(r=pmb_chamfer_radius, $fn=32);
        translate([0, -(pmb_width/2), 0]) square(pmb_chamfer_radius);
        translate([0, (pmb_width/2) - pmb_chamfer_radius, 0]) square(pmb_chamfer_radius);
    }
}

module hoop() {
    rotate_extrude(angle=180, $fn=64) {
        translate([pmb_motor_dia/2, 0, 0]) profile();
    }
}
module leg() {
    translate([pmb_motor_dia/2, 0, 0]) rotate([90, 0, 0]) linear_extrude((pmb_motor_dia/2) + pmb_base_thickness) profile();
}

module pad() {
    translate([pmb_width/2, 0, 0]) rotate([0, 270, 0]) linear_extrude(pmb_width) profile();    
}
module foot() {
    translate([pmb_thickness + ((pmb_motor_dia + pmb_width)/2) - 1.0, -(pmb_motor_dia/2 + pmb_base_thickness), 0]) rotate([0, 90, 90]) difference() {
        union() {
            intersection() {
                pad();
                rotate([0, 0, 90]) pad();
            }
            translate([-pmb_width/2, pmb_thickness-pmb_chamfer_radius, pmb_thickness - pmb_chamfer_radius*2]) cube([pmb_width, pmb_chamfer_radius*2, pmb_chamfer_radius*2]);
        }
        translate([0, 0, pmb_thickness]) cylinder(h=pmb_thickness*3, d=pmb_fix_hole_dia, center=true, $fn=32);
    }
}
module plan_motor_bracket() {
    hoop();
    leg();
    mirror([1, 0, 0]) leg();
    translate([0, -(pmb_motor_dia + pmb_base_thickness)/2, 0]) rotate([90, 0, 90]) cube([pmb_base_thickness, pmb_width, pmb_motor_dia], center=true);
    foot();
    mirror([1, 0, 0]) foot();
}

plan_motor_bracket();
